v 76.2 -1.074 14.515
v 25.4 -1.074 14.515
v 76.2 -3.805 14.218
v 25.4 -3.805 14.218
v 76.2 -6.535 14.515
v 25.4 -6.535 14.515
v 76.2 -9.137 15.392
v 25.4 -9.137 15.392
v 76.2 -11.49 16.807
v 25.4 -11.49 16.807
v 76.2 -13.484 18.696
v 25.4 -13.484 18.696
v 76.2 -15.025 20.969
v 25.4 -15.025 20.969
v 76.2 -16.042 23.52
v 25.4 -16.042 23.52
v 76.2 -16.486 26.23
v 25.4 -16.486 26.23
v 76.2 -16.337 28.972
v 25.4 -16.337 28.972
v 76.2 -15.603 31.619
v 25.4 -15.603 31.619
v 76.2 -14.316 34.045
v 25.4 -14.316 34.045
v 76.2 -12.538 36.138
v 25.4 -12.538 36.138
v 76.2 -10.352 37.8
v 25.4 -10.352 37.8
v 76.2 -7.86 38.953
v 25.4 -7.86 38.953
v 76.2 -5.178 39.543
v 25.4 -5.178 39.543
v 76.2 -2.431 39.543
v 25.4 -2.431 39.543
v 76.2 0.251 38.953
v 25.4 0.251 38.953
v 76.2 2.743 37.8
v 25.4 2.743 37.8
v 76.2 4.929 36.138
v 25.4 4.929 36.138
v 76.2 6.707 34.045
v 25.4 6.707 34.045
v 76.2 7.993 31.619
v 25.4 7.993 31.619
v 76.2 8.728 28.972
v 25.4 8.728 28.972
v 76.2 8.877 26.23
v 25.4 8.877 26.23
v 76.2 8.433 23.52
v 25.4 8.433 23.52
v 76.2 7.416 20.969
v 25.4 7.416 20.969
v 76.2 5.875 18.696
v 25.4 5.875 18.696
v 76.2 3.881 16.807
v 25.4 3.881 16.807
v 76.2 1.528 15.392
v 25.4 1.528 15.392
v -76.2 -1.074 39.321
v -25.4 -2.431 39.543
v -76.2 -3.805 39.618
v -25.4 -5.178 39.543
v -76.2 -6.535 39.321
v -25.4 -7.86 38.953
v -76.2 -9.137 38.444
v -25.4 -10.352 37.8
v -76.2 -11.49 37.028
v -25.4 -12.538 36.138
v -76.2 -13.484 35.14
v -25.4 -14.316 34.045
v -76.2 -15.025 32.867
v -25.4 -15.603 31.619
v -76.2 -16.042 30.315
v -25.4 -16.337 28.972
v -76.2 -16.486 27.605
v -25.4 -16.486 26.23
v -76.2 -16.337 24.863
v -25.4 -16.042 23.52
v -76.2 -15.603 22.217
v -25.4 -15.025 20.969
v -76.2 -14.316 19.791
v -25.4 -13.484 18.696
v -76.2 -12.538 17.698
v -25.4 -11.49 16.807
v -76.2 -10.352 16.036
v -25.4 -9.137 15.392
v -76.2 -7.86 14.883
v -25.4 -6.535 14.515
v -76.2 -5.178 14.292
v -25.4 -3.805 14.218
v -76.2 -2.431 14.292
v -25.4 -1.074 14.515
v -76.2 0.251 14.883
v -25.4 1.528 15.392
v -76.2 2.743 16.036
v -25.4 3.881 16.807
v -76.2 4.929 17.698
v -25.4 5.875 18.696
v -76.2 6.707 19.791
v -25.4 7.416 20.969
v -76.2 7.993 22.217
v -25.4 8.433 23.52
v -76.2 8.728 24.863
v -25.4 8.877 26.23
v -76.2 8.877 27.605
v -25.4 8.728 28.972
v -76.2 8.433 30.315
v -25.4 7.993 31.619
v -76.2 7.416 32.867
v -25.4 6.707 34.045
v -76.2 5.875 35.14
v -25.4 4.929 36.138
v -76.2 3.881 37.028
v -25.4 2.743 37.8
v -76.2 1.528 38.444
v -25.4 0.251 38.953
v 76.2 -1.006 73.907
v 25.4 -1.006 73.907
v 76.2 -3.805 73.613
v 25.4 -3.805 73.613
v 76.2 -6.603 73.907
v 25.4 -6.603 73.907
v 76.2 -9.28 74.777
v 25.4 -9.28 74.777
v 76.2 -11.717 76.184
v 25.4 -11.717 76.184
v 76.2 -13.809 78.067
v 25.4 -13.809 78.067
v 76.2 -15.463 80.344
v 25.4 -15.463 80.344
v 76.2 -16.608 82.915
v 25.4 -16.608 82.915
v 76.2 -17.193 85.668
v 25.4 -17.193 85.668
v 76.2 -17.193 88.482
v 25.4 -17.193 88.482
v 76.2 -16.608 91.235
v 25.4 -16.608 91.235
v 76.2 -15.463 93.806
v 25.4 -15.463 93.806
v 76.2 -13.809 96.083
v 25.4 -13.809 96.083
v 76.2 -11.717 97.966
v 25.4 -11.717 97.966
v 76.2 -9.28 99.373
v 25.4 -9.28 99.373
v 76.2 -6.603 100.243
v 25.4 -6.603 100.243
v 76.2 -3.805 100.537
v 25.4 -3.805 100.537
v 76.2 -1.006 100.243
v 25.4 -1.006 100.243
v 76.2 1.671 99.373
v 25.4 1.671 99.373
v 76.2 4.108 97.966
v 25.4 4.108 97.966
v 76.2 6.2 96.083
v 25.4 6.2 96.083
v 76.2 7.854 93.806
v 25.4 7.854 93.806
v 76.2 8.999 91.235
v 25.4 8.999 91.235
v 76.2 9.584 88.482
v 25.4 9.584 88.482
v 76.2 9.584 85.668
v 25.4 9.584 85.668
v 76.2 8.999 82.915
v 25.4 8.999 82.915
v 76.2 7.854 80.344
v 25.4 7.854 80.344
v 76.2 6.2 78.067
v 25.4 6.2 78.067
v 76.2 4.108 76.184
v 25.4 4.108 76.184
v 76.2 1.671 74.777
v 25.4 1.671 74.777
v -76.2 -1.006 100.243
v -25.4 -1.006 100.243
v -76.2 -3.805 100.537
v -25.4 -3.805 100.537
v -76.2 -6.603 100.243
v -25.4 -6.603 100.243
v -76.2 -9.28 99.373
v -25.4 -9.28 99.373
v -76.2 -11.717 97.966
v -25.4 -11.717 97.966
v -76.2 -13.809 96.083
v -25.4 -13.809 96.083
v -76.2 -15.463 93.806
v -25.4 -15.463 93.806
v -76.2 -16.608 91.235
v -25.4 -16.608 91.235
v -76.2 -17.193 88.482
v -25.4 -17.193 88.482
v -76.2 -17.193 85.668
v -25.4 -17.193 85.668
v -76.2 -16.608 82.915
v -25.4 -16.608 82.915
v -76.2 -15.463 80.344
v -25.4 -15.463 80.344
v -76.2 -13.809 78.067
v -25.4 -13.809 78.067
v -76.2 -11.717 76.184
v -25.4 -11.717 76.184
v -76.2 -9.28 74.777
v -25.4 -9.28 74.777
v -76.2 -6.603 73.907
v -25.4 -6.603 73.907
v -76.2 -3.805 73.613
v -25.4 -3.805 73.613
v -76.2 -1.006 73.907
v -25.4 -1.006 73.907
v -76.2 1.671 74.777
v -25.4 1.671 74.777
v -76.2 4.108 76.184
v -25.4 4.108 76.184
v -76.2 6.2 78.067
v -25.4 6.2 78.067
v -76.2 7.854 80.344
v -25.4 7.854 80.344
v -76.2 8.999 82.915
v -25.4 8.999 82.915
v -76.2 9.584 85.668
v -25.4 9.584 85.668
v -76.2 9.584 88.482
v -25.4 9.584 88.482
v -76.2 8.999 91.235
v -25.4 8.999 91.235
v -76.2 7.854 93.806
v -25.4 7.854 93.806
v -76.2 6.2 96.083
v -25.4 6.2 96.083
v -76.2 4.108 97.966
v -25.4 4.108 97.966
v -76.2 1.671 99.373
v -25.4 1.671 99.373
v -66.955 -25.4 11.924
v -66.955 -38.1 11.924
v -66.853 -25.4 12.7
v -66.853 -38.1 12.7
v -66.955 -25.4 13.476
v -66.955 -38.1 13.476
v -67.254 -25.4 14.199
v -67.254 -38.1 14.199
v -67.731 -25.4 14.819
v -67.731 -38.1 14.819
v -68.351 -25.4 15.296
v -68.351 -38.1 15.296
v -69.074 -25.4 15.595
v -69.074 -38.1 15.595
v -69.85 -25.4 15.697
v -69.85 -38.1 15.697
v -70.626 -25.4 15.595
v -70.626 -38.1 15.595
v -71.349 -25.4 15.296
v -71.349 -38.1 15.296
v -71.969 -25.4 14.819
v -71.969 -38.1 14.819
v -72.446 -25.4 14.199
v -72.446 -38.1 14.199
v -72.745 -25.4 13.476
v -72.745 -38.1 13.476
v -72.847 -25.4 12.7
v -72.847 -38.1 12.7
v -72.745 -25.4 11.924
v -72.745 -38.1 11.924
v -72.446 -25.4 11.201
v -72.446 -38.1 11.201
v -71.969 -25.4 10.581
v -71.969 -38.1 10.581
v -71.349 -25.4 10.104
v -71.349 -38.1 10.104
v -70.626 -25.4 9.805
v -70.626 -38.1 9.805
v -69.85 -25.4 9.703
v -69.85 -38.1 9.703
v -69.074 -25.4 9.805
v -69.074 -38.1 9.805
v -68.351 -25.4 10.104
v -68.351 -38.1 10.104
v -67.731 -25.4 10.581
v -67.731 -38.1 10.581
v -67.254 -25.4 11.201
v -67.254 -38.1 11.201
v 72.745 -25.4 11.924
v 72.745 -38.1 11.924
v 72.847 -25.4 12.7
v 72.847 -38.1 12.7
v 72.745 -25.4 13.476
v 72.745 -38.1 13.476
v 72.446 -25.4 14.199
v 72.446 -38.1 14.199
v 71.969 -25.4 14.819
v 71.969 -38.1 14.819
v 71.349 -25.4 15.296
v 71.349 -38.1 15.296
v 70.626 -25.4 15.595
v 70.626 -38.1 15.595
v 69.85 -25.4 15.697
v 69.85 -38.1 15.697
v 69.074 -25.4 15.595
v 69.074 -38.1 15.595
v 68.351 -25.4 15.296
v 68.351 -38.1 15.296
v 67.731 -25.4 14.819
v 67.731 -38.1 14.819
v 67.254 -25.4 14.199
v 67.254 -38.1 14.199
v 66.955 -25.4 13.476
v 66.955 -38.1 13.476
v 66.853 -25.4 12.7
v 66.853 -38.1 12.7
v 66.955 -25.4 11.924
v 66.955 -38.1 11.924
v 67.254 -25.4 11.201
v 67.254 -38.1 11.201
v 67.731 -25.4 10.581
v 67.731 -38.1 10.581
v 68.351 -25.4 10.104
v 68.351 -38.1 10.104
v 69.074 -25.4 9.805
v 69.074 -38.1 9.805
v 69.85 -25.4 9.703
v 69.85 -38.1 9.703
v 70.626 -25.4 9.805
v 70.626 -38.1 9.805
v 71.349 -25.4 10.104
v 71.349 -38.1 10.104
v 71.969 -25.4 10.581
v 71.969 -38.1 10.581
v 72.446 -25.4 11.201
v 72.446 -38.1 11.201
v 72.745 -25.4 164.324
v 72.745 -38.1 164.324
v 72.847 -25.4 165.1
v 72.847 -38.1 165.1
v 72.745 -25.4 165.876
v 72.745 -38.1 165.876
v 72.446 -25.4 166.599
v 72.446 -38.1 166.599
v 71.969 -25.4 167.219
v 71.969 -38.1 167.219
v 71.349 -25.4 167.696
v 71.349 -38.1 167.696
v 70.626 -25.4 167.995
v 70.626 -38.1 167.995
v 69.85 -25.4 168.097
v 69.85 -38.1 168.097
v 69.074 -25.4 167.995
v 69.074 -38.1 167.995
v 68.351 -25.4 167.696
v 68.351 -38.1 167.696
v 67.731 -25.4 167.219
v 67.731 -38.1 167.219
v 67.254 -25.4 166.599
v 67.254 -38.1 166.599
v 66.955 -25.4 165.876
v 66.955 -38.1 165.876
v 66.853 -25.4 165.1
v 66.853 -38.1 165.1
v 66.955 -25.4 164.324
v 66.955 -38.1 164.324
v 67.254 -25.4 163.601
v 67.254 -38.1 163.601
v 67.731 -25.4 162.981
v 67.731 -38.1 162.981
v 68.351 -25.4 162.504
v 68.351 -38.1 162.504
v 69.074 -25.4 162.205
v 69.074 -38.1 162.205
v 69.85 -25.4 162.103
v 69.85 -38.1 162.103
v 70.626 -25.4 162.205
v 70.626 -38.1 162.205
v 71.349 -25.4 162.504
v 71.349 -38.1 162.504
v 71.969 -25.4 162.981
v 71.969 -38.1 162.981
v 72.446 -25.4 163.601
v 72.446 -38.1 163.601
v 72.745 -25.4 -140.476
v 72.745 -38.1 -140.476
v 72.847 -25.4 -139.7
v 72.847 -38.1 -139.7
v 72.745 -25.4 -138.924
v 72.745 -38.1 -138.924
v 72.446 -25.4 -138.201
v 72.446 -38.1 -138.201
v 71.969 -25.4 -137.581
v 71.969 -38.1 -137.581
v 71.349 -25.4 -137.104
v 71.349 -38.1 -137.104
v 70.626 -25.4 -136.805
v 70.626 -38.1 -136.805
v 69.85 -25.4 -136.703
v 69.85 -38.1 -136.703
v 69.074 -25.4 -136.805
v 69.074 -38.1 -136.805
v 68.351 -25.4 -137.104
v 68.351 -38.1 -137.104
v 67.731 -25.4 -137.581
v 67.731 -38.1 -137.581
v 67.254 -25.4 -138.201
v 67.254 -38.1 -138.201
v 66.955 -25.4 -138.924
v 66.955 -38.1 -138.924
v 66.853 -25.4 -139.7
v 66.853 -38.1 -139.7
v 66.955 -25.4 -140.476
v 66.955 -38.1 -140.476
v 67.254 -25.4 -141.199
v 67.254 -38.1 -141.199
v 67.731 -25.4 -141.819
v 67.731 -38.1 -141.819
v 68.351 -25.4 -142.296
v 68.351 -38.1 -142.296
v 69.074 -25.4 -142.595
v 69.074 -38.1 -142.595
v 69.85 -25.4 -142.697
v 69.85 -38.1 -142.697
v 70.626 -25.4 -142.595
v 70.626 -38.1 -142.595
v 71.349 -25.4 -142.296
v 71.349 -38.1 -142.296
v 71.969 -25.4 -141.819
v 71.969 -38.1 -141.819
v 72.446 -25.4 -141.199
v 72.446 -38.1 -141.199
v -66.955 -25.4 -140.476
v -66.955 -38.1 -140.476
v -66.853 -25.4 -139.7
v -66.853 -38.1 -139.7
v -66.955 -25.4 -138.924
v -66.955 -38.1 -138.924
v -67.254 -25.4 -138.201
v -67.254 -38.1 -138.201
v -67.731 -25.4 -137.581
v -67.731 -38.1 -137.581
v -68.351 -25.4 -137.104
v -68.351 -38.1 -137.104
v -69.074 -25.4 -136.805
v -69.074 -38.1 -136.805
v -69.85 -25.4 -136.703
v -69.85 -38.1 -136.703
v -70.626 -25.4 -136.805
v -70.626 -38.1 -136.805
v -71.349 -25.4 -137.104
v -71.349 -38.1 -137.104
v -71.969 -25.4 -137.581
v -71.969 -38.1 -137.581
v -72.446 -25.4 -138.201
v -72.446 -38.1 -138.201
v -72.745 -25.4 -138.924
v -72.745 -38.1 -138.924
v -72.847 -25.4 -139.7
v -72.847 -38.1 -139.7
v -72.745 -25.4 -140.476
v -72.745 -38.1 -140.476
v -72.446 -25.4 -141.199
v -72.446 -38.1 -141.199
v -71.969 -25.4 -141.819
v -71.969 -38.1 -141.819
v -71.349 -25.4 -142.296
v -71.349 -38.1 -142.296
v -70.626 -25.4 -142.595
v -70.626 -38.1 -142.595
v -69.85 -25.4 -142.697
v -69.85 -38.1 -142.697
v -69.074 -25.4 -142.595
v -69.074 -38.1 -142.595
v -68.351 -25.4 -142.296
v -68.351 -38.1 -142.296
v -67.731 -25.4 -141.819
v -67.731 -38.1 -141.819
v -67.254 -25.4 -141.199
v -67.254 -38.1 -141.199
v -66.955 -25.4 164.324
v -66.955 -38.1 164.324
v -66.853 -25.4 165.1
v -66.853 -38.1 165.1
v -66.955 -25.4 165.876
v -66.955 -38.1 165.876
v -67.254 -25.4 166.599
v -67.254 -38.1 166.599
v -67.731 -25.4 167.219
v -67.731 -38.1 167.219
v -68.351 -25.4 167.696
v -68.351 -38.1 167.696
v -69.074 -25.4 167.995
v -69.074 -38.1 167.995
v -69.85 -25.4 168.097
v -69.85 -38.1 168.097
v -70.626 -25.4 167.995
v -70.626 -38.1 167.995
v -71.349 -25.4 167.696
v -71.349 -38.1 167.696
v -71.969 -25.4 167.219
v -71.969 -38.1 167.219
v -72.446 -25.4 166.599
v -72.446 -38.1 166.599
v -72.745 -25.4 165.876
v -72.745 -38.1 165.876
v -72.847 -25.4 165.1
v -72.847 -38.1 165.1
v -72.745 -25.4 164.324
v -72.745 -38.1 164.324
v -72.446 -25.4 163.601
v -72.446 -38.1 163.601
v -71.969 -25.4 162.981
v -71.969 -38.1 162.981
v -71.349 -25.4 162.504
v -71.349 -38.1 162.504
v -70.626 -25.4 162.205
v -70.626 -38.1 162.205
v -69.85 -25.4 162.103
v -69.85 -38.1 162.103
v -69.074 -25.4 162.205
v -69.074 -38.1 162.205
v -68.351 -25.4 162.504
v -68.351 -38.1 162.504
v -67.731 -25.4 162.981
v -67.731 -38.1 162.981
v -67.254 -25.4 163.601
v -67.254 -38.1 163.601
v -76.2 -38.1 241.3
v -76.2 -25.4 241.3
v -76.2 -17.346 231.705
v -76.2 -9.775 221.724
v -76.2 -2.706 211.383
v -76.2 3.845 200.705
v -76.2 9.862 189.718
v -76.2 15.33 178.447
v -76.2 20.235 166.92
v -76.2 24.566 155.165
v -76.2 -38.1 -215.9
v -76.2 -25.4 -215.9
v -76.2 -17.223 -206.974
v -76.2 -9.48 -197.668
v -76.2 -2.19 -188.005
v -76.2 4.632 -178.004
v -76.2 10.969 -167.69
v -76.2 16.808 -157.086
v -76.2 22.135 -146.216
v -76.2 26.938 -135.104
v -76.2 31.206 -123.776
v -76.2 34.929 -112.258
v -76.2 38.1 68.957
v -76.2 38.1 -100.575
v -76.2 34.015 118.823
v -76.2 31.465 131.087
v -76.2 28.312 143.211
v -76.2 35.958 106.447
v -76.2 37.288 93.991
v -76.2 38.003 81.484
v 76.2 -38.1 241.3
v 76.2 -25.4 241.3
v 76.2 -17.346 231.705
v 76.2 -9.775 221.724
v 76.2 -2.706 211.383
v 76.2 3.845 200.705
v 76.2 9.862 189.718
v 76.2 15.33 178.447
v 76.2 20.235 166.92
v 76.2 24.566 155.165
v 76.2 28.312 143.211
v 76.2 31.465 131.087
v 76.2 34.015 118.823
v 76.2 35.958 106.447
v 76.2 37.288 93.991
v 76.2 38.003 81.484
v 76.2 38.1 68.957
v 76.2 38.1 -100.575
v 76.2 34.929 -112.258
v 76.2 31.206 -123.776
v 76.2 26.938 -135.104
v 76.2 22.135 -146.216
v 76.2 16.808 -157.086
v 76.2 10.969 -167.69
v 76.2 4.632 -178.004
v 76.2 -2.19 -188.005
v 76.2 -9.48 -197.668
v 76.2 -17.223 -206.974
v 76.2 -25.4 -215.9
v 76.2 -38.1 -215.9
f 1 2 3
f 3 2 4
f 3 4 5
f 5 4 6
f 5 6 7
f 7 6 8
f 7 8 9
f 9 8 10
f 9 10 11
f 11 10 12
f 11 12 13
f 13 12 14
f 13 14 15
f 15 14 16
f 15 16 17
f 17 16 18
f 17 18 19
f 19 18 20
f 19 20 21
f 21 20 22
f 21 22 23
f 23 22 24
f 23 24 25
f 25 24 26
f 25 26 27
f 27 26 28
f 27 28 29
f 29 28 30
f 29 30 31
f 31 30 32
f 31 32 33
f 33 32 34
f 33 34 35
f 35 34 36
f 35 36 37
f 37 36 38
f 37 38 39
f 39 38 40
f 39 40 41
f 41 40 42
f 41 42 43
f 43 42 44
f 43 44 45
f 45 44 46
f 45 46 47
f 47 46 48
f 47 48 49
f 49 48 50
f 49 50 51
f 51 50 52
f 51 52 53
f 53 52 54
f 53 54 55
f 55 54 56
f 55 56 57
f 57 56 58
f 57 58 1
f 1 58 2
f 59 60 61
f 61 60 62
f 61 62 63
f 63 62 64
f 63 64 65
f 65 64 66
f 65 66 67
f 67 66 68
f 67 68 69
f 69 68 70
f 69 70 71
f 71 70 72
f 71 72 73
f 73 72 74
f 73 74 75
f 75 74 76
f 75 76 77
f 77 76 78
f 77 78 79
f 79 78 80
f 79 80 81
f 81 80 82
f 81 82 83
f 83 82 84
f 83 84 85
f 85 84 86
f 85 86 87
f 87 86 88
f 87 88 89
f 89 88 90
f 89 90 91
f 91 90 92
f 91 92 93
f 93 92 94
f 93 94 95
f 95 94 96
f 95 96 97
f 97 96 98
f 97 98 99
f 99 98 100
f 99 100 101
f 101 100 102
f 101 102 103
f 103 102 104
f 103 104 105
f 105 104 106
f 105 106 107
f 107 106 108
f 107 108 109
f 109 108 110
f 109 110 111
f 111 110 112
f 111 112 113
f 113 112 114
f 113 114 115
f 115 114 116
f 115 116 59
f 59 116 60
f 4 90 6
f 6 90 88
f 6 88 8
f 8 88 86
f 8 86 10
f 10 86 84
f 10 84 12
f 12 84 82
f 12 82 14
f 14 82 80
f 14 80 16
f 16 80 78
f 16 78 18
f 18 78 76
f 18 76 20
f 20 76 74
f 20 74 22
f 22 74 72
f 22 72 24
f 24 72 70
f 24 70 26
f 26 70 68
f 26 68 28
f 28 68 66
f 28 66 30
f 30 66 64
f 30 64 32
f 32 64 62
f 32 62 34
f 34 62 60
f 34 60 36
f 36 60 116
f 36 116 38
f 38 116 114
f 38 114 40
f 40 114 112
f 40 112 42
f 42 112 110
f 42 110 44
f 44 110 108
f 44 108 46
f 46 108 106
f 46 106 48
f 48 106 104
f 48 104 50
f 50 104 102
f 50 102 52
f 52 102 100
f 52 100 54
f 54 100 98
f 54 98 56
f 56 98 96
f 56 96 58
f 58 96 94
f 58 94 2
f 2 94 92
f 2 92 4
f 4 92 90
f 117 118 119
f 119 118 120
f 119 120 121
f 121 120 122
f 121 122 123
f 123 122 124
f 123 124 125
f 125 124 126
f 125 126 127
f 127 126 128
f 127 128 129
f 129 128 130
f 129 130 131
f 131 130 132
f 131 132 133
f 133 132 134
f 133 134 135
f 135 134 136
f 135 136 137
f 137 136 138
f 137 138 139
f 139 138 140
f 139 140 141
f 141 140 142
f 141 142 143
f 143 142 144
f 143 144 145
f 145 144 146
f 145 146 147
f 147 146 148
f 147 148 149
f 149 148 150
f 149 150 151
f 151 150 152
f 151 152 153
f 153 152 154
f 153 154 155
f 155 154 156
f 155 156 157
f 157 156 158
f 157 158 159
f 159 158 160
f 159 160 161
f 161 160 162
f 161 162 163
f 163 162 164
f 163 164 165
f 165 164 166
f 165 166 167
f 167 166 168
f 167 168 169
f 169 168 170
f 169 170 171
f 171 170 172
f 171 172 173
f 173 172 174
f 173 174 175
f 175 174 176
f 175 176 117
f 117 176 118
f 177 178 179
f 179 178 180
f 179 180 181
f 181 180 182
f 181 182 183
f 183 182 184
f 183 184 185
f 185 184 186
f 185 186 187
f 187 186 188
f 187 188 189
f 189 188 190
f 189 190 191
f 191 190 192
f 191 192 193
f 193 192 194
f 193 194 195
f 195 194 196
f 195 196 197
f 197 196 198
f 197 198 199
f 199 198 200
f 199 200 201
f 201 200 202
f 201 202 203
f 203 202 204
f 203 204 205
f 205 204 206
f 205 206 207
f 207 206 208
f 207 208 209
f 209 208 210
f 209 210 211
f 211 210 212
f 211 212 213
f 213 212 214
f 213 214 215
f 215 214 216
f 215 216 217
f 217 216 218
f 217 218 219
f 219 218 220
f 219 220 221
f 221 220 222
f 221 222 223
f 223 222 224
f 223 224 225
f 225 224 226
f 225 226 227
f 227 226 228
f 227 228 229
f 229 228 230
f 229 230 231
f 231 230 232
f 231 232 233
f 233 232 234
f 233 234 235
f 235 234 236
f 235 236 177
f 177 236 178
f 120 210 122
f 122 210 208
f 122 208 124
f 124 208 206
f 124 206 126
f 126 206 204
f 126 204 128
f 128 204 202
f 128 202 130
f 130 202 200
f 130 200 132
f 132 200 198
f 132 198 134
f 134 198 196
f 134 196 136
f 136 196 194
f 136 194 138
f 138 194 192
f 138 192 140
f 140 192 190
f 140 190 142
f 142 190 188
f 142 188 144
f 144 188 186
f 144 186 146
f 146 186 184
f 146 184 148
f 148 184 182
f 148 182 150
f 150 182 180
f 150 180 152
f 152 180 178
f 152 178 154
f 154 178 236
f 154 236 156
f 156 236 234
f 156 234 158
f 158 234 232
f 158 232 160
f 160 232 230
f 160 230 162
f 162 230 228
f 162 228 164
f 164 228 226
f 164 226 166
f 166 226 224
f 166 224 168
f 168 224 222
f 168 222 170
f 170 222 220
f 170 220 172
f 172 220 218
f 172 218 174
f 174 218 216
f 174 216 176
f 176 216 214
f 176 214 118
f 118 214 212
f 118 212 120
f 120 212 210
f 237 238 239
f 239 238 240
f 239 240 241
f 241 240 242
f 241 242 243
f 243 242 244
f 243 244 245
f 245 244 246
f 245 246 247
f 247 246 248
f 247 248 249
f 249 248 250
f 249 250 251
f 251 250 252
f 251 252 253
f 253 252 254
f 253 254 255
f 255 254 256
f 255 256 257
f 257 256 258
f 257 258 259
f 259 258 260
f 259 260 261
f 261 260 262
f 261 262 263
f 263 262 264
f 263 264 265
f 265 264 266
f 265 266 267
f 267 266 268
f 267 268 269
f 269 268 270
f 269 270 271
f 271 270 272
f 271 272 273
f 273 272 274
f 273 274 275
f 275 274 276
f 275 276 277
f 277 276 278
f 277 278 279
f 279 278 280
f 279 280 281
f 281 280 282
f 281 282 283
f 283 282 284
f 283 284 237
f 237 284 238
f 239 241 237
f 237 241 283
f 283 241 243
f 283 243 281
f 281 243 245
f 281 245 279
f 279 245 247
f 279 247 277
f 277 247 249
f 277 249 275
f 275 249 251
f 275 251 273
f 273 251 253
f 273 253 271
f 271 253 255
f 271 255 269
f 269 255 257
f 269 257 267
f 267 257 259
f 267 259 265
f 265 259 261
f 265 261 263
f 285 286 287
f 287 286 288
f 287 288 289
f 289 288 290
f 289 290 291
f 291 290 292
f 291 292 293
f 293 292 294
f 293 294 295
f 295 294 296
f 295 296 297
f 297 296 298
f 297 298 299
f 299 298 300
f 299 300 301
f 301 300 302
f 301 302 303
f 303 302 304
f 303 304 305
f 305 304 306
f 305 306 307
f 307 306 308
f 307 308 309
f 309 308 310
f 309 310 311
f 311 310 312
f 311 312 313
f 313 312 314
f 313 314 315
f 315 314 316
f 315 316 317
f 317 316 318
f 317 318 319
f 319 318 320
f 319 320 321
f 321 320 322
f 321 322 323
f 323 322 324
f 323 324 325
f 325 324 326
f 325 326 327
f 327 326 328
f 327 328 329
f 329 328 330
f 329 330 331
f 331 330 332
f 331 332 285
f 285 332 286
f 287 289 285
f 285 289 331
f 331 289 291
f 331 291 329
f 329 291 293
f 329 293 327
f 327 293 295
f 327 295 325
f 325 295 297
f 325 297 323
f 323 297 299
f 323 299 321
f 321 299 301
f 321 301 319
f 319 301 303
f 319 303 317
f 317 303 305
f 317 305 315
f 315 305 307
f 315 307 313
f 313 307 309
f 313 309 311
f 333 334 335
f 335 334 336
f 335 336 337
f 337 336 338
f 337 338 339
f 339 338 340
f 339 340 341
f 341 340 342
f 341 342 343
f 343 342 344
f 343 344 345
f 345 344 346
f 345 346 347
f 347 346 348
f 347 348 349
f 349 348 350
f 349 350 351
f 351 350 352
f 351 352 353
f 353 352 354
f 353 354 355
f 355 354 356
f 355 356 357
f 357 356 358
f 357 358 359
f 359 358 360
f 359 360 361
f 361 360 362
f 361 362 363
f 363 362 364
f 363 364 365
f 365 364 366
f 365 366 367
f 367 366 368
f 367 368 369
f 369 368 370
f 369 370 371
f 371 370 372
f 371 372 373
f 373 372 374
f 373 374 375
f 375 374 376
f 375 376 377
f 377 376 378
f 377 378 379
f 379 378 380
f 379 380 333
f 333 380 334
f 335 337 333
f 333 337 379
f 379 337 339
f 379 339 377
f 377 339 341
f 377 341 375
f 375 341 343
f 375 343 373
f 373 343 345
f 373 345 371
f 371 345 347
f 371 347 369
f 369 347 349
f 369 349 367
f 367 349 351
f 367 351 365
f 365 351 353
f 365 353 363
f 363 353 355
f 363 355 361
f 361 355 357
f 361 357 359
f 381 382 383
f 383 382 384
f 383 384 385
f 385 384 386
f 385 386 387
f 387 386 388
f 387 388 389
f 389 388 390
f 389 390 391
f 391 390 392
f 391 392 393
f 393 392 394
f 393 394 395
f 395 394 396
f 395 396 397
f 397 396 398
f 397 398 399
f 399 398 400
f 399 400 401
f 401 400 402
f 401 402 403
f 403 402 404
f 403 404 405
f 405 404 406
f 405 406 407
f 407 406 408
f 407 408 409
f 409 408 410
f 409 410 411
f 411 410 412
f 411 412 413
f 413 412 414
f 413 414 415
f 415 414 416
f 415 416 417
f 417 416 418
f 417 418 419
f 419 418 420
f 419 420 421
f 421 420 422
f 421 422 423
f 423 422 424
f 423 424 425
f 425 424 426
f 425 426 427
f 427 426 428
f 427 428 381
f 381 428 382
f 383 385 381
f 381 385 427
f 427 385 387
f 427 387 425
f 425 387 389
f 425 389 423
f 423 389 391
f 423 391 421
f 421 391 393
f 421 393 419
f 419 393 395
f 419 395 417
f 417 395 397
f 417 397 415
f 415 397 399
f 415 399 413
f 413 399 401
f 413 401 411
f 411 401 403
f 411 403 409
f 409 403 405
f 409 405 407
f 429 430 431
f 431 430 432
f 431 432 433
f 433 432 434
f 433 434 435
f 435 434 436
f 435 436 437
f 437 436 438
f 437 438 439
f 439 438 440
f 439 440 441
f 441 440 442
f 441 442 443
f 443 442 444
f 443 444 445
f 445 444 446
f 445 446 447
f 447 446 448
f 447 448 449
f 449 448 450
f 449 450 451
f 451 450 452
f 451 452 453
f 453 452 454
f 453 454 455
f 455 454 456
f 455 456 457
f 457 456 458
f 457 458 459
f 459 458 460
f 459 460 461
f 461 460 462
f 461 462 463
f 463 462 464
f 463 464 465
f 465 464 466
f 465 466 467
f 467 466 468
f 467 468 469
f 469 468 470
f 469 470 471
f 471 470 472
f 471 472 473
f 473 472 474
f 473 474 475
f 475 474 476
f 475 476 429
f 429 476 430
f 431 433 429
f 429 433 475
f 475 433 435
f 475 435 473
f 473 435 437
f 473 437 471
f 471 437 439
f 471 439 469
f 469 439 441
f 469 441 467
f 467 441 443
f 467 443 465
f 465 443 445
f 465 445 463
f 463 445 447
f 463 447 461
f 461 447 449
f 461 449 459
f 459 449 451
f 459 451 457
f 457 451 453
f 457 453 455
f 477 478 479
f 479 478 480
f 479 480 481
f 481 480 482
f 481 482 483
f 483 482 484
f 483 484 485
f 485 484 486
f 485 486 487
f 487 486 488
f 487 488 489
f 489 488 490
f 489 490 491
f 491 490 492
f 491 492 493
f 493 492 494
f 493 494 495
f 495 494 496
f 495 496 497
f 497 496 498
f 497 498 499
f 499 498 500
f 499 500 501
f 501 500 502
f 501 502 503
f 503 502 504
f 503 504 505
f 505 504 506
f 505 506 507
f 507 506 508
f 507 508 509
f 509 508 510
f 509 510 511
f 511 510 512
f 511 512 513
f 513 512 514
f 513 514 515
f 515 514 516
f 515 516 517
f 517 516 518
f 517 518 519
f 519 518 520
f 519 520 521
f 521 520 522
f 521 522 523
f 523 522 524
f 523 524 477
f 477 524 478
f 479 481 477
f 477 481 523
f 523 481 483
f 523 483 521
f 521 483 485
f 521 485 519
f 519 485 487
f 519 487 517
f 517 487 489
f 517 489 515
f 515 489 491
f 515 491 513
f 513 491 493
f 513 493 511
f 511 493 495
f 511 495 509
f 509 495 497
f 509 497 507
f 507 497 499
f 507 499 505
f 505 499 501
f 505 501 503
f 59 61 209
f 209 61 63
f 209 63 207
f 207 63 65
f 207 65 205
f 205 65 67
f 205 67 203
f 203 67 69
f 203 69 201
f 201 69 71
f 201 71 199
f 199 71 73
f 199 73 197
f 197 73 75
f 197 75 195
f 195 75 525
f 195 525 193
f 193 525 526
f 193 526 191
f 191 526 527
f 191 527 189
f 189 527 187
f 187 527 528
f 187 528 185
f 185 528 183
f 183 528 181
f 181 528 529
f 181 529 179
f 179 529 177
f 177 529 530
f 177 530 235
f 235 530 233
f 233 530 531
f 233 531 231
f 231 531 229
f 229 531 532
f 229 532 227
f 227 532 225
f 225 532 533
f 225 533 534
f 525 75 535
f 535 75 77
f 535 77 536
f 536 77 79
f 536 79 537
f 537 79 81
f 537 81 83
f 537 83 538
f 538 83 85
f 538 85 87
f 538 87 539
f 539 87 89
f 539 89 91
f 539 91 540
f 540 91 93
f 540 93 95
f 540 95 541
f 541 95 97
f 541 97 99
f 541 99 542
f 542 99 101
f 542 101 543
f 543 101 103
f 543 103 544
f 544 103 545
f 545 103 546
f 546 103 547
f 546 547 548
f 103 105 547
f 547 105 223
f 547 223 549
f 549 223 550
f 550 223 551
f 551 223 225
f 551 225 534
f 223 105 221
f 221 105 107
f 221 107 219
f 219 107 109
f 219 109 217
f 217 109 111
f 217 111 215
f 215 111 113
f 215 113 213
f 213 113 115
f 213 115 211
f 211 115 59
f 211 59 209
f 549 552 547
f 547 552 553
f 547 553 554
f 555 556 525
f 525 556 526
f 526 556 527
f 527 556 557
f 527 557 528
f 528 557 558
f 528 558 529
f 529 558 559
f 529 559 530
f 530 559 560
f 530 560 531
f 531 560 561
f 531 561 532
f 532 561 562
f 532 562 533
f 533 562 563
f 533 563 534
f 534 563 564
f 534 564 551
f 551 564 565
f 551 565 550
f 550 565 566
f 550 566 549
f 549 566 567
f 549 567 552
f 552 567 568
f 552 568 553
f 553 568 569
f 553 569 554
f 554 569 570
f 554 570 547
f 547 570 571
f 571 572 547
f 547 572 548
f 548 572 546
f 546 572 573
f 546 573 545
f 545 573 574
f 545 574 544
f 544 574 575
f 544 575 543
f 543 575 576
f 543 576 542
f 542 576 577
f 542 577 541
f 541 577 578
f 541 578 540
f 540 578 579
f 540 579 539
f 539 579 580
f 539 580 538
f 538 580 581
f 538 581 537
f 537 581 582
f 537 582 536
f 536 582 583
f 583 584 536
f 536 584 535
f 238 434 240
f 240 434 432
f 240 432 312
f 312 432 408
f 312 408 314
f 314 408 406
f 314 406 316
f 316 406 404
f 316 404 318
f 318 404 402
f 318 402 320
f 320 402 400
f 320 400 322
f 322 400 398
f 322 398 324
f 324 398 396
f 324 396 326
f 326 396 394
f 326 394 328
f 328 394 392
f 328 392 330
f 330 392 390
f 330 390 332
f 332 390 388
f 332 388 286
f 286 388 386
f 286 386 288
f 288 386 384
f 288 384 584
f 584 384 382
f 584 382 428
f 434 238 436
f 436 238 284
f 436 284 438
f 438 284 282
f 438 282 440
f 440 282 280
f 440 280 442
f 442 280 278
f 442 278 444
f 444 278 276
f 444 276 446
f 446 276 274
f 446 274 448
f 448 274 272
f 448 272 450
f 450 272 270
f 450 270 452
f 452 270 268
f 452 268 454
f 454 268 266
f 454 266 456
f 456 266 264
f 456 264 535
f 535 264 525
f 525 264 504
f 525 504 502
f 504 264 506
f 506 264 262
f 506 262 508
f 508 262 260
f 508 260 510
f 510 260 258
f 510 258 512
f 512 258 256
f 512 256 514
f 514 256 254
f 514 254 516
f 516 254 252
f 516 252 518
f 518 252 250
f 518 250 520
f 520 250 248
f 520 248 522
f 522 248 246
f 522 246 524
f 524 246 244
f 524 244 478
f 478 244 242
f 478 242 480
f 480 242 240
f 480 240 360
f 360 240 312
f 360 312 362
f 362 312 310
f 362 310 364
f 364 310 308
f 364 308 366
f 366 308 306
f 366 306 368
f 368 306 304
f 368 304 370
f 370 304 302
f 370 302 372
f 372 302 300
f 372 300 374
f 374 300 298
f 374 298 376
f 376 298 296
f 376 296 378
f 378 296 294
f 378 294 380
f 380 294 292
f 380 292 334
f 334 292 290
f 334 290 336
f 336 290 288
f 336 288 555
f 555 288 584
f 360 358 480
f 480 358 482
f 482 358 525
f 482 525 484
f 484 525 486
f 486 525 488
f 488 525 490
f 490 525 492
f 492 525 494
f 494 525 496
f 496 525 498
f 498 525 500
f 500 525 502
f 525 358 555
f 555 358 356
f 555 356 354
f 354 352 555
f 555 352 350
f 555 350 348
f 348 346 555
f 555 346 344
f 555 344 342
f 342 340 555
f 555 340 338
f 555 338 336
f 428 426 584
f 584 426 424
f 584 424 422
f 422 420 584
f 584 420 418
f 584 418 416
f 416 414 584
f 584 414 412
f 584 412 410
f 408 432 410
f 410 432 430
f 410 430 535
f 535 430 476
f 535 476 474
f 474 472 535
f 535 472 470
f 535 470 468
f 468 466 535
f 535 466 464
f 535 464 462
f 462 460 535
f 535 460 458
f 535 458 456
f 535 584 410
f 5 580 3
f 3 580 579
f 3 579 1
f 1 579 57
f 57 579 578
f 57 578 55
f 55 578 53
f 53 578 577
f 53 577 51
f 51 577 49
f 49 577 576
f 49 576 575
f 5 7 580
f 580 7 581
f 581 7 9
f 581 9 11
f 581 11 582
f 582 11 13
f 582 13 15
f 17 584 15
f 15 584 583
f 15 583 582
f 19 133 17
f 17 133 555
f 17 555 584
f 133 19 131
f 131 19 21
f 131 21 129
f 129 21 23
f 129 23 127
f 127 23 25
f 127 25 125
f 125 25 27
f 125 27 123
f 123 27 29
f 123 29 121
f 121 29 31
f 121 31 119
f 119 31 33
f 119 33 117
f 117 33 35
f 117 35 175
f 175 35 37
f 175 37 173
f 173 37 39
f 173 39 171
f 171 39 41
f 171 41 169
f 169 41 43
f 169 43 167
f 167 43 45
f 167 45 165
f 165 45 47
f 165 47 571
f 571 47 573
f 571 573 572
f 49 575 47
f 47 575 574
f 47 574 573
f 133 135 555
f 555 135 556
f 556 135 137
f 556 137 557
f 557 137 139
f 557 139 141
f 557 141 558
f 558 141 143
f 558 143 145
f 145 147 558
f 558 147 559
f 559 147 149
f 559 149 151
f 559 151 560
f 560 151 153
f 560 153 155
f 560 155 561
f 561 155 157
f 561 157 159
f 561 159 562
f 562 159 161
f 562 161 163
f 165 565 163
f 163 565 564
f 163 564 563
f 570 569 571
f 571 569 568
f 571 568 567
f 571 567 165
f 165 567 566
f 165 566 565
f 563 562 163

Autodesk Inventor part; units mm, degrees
ref_plane "YZ Plane" through (0, 0, 0) normal (1, 0, 0) x (0, 1, 0)
ref_plane "XZ Plane" through (0, 0, 0) normal (0, 1, 0) x (-1, 0, 0)
ref_plane "XY Plane" through (0, 0, 0) normal (0, 0, 1) x (1, 0, 0)
sketch "Sketch1" plane through (0, 0, 0) normal (1, 0, 0) x (0, 1, 0)
  line L0 (-38.1, -165.1) -> (-38.1, 165.1)
  line L1 (-38.1, 165.1) -> (20.949, 165.1)
  line L2 (38.1, 77.5498) -> (38.1, -100.5752)
  line L3 (12.4566, -165.1) -> (-38.1, -165.1)
  line L4 (-38.1, -165.1) -> (38.1, 165.1) construction
  line L5 (-38.1, 165.1) -> (38.1, -165.1) construction
  line L6 (-38.1, -165.1) -> (-38.1, -215.9)
  line L7 (-38.1, -215.9) -> (-25.4, -215.9)
  line L8 (-25.4, -215.9) -> (-25.4, -165.1)
  line L9 (-38.1, 165.1) -> (-38.1, 241.3)
  line L10 (-38.1, 241.3) -> (-25.4, 241.3)
  line L11 (-25.4, 241.3) -> (-25.4, 165.1)
  line L12 (-38.1, -139.7) -> (38.1, -139.7) construction
  line L13 (-38.1, 12.7) -> (38.1, 12.7) construction
  line L14 (-38.1, 165.1) -> (38.1, 165.1) construction
  arc A0 (38.1, 68.9574) -> (-25.4, 241.3) centre (-215.8637, 73.2536) ccw
  arc A1 (-25.4, -215.9) -> (38.1, -100.5752) centre (-208.549, -39.9101) ccw
  point P0 (0, 0)
  dimension "d0" = 330.2
  dimension "d1" = 76.2
  dimension "d2" = 50.8
  dimension "d3" = 12.7
  dimension "d5" = 76.2
  dimension "d6" = 12.7
  dimension "d9" = 152.4
  dimension "d10" = 76.2
  dimension "d11" = 152.4
  dimension "d37" = 254
  dimension "d38" = 254
extrude "Extrusion1" add sketch "Sketch1" along normal mid plane 152.4
sketch "Sketch3" plane through (-76.2, -38.1, -215.9) normal (0, -1, 0) x (1, 0, 0)
  circle A0 centre (6.35, 76.2) radius 2.9972
  line L0 (0, 0) -> (0, 457.2) projected
  line L1 (0, 0) -> (152.4, 0) projected
  circle A1 centre (146.05, 76.2) radius 2.9972
  circle A2 centre (6.35, 228.6) radius 2.9972
  circle A3 centre (146.05, 228.6) radius 2.9972
  circle A4 centre (6.35, 381) radius 2.9972
  circle A5 centre (146.05, 381) radius 2.9972
  point P0 (76.2, 215.9)
  dimension "d14" = 5.9944
  dimension "d15" = 6.35
  dimension "d16" = 76.2
  dimension "d19" = 139.7
  dimension "d22" = 152.4
extrude "Extrusion2" cut sketch "Sketch3" against normal blind 12.7
ref_plane "Work Plane1" through (0, 0, 0) normal (1, 0, 0) x (0, 0, -1)
sketch "Sketch5" plane through (-76.2, 0, 0) normal (-1, 0, 0) x (0, 0, 1)
  circle A0 centre (87.0752, -3.8046) radius 13.462 projected
  point P0 (0, 0)
extrude "Extrusion4" cut sketch "Sketch5" against normal through all
sketch "Sketch6" plane through (-76.2, 0, 0) normal (-1, 0, 0) x (0, 0, 1)
  circle A0 centre (26.9178, -3.8046) radius 12.7
  point P0 (0, 0)
  dimension "d41" = 25.4
extrude "Extrusion5" cut sketch "Sketch6" against normal through all
properties part number "WingBox"
